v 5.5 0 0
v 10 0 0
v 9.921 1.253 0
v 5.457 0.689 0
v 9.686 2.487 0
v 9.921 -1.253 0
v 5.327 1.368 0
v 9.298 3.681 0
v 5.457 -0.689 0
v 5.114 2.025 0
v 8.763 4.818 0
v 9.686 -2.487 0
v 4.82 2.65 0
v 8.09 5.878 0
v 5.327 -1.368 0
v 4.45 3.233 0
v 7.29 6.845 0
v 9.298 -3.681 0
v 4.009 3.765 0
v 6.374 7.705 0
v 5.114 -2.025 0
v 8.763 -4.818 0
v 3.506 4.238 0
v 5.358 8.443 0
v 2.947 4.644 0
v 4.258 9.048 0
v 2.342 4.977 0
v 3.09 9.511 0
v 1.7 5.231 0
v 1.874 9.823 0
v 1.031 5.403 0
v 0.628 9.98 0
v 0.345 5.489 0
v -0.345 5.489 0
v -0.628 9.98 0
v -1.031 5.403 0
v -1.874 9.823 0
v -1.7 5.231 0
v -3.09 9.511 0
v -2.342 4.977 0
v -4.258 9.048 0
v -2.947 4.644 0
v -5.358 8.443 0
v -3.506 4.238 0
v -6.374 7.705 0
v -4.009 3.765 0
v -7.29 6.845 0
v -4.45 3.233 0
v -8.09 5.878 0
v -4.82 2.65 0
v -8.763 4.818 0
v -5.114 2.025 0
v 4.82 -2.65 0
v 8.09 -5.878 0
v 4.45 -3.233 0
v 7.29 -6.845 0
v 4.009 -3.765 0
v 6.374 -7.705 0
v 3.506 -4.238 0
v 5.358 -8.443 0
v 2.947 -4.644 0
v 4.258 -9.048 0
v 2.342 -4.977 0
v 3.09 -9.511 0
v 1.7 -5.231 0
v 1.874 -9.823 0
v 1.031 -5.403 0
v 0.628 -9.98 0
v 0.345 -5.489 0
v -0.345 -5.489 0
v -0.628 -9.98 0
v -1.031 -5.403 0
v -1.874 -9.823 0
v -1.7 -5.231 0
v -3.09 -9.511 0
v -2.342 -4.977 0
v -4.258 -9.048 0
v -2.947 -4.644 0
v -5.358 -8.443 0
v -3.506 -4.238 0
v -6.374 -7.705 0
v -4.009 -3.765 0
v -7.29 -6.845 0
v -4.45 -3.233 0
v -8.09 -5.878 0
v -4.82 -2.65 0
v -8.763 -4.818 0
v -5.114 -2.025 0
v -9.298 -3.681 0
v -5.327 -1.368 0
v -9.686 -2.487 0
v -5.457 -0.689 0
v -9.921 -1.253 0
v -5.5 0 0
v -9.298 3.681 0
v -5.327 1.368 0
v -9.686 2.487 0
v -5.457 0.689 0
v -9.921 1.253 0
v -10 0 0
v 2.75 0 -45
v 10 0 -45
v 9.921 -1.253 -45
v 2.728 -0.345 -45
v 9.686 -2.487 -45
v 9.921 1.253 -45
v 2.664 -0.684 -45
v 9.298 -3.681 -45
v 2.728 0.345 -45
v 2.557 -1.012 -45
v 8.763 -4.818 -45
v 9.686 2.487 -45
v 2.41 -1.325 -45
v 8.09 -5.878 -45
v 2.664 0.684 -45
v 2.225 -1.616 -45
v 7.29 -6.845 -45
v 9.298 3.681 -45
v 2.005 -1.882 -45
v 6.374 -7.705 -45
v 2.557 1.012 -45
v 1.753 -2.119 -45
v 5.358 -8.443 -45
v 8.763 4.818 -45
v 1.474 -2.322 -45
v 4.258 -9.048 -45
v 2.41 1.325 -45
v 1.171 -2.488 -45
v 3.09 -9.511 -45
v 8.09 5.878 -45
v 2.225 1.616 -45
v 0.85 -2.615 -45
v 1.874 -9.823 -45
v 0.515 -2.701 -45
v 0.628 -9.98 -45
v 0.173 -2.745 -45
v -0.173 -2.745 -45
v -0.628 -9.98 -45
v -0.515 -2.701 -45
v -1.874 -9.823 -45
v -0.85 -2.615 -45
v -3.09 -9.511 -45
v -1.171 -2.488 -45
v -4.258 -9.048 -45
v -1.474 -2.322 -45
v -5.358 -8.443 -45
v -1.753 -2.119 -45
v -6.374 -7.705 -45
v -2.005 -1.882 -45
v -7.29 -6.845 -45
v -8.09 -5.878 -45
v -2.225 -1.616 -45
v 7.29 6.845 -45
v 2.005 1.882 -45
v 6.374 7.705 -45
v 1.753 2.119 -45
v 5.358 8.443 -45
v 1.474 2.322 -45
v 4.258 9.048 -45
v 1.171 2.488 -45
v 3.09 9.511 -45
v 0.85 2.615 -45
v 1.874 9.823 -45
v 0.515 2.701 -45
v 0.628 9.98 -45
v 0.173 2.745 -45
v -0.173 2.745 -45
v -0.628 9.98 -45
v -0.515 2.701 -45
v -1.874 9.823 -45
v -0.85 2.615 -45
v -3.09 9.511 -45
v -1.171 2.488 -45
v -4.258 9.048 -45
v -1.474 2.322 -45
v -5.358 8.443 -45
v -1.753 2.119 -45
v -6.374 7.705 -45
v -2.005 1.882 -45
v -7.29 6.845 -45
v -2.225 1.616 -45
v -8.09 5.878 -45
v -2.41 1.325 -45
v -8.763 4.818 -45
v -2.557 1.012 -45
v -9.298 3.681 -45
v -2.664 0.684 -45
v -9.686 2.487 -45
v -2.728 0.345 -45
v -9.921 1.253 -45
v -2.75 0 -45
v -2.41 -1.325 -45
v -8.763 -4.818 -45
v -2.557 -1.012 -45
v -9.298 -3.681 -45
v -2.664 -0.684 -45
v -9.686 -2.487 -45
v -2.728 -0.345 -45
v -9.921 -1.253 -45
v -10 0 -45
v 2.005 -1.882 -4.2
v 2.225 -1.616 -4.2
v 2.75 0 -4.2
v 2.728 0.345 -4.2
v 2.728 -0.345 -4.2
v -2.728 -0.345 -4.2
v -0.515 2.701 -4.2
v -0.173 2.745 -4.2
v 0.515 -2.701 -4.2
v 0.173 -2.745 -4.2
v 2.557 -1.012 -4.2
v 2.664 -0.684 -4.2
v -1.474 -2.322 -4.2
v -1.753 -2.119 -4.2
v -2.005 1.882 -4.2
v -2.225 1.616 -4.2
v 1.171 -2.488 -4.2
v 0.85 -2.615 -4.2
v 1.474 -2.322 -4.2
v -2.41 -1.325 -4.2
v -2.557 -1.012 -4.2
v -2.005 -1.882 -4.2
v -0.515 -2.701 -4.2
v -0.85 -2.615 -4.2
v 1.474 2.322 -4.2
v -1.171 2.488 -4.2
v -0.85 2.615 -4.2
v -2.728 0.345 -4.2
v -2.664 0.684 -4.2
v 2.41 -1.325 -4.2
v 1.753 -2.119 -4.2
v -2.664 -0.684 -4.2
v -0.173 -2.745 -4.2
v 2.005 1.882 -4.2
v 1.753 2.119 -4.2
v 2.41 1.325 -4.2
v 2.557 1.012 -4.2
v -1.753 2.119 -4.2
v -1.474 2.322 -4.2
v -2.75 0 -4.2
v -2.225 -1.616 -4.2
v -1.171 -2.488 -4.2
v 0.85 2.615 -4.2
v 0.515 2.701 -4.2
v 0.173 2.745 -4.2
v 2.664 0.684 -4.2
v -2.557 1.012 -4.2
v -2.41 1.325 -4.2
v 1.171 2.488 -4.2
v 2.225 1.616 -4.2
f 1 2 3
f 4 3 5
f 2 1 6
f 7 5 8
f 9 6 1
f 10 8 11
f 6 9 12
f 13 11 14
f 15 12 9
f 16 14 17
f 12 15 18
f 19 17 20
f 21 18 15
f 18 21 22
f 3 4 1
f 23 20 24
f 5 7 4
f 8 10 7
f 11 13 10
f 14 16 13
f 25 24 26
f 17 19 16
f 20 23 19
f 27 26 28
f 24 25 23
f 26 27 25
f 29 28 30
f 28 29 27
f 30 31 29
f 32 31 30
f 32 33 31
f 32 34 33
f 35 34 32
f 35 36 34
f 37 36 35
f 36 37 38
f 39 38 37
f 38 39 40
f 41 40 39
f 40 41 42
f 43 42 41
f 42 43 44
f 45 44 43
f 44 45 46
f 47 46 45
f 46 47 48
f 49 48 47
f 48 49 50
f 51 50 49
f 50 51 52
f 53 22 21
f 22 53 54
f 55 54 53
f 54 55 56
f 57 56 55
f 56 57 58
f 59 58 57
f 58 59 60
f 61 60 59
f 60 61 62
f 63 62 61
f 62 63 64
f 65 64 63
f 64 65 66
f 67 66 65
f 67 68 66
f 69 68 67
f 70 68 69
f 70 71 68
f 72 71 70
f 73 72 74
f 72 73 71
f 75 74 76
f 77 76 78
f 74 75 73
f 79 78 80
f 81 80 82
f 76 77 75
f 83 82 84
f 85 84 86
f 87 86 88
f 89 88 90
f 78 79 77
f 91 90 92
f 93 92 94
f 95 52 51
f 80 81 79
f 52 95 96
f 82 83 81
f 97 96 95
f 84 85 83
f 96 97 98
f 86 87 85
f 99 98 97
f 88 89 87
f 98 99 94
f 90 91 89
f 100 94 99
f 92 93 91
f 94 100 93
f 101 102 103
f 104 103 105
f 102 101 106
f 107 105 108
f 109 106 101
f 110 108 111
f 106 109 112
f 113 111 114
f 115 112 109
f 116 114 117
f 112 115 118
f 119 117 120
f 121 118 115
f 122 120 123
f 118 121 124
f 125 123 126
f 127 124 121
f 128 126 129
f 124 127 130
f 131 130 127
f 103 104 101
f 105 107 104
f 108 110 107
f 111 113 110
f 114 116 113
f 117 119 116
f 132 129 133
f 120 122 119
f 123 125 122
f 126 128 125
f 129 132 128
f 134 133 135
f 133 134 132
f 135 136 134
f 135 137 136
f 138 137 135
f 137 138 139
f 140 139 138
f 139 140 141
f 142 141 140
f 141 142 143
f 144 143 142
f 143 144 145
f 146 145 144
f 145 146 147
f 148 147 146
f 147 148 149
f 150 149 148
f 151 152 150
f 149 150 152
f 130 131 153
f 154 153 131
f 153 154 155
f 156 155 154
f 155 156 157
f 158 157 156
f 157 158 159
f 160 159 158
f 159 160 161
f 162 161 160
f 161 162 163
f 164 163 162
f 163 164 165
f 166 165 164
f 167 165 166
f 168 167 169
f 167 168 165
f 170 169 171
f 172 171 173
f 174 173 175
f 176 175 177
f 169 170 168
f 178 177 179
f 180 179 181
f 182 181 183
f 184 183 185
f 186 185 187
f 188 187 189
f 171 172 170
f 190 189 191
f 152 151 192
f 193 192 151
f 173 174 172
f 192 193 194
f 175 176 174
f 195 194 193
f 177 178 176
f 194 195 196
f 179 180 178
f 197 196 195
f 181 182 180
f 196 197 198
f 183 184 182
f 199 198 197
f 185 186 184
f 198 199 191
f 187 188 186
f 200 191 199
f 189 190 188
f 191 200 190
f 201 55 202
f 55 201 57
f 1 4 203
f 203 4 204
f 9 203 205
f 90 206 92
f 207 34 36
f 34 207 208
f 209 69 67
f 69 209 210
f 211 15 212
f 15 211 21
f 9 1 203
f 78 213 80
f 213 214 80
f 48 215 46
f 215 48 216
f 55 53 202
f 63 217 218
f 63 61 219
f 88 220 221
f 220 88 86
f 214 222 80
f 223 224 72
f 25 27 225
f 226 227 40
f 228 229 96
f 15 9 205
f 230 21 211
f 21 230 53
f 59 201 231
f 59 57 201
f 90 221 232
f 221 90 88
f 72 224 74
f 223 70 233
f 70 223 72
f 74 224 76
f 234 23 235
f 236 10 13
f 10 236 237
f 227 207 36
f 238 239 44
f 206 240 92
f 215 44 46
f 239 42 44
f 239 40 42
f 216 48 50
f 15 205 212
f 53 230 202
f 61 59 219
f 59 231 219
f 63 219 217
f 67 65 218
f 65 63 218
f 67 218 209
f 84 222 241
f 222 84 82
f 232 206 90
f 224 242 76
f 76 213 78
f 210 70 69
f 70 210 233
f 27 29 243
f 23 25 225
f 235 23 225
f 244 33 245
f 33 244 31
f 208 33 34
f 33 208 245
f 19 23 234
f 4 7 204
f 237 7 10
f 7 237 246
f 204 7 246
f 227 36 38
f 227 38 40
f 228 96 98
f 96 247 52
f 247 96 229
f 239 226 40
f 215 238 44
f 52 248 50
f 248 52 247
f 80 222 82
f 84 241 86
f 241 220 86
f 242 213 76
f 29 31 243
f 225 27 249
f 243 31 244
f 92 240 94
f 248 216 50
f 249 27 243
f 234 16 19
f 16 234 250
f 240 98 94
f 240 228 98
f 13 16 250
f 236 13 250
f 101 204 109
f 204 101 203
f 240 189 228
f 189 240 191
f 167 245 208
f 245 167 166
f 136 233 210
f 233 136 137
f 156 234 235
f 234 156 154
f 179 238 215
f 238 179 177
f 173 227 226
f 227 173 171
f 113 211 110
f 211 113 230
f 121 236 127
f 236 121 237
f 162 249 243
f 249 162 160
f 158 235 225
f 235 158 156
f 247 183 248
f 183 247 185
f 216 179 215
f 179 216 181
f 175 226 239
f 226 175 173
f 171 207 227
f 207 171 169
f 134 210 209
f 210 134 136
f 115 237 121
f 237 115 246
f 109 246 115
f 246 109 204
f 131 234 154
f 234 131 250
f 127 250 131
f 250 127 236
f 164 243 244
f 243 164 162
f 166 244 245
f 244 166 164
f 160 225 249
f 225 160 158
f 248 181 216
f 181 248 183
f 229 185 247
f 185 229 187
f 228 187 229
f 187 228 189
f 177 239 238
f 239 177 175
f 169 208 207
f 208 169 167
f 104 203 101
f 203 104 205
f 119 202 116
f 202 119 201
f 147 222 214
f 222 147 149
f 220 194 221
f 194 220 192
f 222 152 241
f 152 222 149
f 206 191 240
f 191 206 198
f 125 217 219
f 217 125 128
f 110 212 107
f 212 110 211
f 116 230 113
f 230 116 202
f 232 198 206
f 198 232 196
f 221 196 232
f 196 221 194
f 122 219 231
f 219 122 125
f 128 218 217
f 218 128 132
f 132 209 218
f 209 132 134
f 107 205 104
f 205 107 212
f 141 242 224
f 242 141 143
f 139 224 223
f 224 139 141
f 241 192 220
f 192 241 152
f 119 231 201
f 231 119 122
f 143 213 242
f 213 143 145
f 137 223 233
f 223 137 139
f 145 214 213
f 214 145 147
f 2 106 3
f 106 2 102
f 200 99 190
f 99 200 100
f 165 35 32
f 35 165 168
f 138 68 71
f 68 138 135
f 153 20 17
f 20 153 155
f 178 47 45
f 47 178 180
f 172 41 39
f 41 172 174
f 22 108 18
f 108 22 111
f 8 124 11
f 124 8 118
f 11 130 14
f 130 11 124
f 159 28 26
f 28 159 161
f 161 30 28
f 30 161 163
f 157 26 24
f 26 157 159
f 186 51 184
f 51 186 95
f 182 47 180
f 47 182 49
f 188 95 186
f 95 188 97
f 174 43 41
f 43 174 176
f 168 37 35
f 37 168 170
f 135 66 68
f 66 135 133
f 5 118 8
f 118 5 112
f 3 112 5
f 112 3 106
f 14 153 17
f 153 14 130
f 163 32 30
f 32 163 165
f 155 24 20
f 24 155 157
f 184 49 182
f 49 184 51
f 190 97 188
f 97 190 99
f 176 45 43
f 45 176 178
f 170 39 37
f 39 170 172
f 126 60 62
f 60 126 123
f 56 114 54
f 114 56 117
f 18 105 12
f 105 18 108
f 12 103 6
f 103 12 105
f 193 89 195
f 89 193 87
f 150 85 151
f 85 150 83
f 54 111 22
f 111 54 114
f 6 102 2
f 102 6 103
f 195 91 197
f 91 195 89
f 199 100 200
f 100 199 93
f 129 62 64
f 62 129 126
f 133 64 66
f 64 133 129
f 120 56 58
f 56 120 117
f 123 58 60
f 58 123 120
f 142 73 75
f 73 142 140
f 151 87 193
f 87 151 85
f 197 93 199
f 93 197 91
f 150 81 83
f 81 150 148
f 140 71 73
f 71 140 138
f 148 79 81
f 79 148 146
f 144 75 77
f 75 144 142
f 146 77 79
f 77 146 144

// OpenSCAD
$fn = 50;


difference() {
	union() {
		translate(v = [0, 0, -45.0000000000]) {
			cylinder(h = 45, r = 10.0000000000);
		}
		cylinder(h = 0, r = 16.0000000000);
	}
	union() {
		translate(v = [0, 0, 0]) {
			rotate(a = [0, 0, 0]) {
				difference() {
					union() {
						#translate(v = [0, 0, -45.0000000000]) {
							cylinder(h = 45, r = 2.2500000000);
						}
						#translate(v = [0, 0, -4.2000000000]) {
							cylinder(h = 4.2000000000, r1 = 2.7500000000, r2 = 5.5000000000);
						}
						#translate(v = [0, 0, -45.0000000000]) {
							cylinder(h = 45, r = 2.7500000000);
						}
						#translate(v = [0, 0, -45.0000000000]) {
							cylinder(h = 45, r = 2.2500000000);
						}
					}
					union();
				}
			}
		}
	}
}
